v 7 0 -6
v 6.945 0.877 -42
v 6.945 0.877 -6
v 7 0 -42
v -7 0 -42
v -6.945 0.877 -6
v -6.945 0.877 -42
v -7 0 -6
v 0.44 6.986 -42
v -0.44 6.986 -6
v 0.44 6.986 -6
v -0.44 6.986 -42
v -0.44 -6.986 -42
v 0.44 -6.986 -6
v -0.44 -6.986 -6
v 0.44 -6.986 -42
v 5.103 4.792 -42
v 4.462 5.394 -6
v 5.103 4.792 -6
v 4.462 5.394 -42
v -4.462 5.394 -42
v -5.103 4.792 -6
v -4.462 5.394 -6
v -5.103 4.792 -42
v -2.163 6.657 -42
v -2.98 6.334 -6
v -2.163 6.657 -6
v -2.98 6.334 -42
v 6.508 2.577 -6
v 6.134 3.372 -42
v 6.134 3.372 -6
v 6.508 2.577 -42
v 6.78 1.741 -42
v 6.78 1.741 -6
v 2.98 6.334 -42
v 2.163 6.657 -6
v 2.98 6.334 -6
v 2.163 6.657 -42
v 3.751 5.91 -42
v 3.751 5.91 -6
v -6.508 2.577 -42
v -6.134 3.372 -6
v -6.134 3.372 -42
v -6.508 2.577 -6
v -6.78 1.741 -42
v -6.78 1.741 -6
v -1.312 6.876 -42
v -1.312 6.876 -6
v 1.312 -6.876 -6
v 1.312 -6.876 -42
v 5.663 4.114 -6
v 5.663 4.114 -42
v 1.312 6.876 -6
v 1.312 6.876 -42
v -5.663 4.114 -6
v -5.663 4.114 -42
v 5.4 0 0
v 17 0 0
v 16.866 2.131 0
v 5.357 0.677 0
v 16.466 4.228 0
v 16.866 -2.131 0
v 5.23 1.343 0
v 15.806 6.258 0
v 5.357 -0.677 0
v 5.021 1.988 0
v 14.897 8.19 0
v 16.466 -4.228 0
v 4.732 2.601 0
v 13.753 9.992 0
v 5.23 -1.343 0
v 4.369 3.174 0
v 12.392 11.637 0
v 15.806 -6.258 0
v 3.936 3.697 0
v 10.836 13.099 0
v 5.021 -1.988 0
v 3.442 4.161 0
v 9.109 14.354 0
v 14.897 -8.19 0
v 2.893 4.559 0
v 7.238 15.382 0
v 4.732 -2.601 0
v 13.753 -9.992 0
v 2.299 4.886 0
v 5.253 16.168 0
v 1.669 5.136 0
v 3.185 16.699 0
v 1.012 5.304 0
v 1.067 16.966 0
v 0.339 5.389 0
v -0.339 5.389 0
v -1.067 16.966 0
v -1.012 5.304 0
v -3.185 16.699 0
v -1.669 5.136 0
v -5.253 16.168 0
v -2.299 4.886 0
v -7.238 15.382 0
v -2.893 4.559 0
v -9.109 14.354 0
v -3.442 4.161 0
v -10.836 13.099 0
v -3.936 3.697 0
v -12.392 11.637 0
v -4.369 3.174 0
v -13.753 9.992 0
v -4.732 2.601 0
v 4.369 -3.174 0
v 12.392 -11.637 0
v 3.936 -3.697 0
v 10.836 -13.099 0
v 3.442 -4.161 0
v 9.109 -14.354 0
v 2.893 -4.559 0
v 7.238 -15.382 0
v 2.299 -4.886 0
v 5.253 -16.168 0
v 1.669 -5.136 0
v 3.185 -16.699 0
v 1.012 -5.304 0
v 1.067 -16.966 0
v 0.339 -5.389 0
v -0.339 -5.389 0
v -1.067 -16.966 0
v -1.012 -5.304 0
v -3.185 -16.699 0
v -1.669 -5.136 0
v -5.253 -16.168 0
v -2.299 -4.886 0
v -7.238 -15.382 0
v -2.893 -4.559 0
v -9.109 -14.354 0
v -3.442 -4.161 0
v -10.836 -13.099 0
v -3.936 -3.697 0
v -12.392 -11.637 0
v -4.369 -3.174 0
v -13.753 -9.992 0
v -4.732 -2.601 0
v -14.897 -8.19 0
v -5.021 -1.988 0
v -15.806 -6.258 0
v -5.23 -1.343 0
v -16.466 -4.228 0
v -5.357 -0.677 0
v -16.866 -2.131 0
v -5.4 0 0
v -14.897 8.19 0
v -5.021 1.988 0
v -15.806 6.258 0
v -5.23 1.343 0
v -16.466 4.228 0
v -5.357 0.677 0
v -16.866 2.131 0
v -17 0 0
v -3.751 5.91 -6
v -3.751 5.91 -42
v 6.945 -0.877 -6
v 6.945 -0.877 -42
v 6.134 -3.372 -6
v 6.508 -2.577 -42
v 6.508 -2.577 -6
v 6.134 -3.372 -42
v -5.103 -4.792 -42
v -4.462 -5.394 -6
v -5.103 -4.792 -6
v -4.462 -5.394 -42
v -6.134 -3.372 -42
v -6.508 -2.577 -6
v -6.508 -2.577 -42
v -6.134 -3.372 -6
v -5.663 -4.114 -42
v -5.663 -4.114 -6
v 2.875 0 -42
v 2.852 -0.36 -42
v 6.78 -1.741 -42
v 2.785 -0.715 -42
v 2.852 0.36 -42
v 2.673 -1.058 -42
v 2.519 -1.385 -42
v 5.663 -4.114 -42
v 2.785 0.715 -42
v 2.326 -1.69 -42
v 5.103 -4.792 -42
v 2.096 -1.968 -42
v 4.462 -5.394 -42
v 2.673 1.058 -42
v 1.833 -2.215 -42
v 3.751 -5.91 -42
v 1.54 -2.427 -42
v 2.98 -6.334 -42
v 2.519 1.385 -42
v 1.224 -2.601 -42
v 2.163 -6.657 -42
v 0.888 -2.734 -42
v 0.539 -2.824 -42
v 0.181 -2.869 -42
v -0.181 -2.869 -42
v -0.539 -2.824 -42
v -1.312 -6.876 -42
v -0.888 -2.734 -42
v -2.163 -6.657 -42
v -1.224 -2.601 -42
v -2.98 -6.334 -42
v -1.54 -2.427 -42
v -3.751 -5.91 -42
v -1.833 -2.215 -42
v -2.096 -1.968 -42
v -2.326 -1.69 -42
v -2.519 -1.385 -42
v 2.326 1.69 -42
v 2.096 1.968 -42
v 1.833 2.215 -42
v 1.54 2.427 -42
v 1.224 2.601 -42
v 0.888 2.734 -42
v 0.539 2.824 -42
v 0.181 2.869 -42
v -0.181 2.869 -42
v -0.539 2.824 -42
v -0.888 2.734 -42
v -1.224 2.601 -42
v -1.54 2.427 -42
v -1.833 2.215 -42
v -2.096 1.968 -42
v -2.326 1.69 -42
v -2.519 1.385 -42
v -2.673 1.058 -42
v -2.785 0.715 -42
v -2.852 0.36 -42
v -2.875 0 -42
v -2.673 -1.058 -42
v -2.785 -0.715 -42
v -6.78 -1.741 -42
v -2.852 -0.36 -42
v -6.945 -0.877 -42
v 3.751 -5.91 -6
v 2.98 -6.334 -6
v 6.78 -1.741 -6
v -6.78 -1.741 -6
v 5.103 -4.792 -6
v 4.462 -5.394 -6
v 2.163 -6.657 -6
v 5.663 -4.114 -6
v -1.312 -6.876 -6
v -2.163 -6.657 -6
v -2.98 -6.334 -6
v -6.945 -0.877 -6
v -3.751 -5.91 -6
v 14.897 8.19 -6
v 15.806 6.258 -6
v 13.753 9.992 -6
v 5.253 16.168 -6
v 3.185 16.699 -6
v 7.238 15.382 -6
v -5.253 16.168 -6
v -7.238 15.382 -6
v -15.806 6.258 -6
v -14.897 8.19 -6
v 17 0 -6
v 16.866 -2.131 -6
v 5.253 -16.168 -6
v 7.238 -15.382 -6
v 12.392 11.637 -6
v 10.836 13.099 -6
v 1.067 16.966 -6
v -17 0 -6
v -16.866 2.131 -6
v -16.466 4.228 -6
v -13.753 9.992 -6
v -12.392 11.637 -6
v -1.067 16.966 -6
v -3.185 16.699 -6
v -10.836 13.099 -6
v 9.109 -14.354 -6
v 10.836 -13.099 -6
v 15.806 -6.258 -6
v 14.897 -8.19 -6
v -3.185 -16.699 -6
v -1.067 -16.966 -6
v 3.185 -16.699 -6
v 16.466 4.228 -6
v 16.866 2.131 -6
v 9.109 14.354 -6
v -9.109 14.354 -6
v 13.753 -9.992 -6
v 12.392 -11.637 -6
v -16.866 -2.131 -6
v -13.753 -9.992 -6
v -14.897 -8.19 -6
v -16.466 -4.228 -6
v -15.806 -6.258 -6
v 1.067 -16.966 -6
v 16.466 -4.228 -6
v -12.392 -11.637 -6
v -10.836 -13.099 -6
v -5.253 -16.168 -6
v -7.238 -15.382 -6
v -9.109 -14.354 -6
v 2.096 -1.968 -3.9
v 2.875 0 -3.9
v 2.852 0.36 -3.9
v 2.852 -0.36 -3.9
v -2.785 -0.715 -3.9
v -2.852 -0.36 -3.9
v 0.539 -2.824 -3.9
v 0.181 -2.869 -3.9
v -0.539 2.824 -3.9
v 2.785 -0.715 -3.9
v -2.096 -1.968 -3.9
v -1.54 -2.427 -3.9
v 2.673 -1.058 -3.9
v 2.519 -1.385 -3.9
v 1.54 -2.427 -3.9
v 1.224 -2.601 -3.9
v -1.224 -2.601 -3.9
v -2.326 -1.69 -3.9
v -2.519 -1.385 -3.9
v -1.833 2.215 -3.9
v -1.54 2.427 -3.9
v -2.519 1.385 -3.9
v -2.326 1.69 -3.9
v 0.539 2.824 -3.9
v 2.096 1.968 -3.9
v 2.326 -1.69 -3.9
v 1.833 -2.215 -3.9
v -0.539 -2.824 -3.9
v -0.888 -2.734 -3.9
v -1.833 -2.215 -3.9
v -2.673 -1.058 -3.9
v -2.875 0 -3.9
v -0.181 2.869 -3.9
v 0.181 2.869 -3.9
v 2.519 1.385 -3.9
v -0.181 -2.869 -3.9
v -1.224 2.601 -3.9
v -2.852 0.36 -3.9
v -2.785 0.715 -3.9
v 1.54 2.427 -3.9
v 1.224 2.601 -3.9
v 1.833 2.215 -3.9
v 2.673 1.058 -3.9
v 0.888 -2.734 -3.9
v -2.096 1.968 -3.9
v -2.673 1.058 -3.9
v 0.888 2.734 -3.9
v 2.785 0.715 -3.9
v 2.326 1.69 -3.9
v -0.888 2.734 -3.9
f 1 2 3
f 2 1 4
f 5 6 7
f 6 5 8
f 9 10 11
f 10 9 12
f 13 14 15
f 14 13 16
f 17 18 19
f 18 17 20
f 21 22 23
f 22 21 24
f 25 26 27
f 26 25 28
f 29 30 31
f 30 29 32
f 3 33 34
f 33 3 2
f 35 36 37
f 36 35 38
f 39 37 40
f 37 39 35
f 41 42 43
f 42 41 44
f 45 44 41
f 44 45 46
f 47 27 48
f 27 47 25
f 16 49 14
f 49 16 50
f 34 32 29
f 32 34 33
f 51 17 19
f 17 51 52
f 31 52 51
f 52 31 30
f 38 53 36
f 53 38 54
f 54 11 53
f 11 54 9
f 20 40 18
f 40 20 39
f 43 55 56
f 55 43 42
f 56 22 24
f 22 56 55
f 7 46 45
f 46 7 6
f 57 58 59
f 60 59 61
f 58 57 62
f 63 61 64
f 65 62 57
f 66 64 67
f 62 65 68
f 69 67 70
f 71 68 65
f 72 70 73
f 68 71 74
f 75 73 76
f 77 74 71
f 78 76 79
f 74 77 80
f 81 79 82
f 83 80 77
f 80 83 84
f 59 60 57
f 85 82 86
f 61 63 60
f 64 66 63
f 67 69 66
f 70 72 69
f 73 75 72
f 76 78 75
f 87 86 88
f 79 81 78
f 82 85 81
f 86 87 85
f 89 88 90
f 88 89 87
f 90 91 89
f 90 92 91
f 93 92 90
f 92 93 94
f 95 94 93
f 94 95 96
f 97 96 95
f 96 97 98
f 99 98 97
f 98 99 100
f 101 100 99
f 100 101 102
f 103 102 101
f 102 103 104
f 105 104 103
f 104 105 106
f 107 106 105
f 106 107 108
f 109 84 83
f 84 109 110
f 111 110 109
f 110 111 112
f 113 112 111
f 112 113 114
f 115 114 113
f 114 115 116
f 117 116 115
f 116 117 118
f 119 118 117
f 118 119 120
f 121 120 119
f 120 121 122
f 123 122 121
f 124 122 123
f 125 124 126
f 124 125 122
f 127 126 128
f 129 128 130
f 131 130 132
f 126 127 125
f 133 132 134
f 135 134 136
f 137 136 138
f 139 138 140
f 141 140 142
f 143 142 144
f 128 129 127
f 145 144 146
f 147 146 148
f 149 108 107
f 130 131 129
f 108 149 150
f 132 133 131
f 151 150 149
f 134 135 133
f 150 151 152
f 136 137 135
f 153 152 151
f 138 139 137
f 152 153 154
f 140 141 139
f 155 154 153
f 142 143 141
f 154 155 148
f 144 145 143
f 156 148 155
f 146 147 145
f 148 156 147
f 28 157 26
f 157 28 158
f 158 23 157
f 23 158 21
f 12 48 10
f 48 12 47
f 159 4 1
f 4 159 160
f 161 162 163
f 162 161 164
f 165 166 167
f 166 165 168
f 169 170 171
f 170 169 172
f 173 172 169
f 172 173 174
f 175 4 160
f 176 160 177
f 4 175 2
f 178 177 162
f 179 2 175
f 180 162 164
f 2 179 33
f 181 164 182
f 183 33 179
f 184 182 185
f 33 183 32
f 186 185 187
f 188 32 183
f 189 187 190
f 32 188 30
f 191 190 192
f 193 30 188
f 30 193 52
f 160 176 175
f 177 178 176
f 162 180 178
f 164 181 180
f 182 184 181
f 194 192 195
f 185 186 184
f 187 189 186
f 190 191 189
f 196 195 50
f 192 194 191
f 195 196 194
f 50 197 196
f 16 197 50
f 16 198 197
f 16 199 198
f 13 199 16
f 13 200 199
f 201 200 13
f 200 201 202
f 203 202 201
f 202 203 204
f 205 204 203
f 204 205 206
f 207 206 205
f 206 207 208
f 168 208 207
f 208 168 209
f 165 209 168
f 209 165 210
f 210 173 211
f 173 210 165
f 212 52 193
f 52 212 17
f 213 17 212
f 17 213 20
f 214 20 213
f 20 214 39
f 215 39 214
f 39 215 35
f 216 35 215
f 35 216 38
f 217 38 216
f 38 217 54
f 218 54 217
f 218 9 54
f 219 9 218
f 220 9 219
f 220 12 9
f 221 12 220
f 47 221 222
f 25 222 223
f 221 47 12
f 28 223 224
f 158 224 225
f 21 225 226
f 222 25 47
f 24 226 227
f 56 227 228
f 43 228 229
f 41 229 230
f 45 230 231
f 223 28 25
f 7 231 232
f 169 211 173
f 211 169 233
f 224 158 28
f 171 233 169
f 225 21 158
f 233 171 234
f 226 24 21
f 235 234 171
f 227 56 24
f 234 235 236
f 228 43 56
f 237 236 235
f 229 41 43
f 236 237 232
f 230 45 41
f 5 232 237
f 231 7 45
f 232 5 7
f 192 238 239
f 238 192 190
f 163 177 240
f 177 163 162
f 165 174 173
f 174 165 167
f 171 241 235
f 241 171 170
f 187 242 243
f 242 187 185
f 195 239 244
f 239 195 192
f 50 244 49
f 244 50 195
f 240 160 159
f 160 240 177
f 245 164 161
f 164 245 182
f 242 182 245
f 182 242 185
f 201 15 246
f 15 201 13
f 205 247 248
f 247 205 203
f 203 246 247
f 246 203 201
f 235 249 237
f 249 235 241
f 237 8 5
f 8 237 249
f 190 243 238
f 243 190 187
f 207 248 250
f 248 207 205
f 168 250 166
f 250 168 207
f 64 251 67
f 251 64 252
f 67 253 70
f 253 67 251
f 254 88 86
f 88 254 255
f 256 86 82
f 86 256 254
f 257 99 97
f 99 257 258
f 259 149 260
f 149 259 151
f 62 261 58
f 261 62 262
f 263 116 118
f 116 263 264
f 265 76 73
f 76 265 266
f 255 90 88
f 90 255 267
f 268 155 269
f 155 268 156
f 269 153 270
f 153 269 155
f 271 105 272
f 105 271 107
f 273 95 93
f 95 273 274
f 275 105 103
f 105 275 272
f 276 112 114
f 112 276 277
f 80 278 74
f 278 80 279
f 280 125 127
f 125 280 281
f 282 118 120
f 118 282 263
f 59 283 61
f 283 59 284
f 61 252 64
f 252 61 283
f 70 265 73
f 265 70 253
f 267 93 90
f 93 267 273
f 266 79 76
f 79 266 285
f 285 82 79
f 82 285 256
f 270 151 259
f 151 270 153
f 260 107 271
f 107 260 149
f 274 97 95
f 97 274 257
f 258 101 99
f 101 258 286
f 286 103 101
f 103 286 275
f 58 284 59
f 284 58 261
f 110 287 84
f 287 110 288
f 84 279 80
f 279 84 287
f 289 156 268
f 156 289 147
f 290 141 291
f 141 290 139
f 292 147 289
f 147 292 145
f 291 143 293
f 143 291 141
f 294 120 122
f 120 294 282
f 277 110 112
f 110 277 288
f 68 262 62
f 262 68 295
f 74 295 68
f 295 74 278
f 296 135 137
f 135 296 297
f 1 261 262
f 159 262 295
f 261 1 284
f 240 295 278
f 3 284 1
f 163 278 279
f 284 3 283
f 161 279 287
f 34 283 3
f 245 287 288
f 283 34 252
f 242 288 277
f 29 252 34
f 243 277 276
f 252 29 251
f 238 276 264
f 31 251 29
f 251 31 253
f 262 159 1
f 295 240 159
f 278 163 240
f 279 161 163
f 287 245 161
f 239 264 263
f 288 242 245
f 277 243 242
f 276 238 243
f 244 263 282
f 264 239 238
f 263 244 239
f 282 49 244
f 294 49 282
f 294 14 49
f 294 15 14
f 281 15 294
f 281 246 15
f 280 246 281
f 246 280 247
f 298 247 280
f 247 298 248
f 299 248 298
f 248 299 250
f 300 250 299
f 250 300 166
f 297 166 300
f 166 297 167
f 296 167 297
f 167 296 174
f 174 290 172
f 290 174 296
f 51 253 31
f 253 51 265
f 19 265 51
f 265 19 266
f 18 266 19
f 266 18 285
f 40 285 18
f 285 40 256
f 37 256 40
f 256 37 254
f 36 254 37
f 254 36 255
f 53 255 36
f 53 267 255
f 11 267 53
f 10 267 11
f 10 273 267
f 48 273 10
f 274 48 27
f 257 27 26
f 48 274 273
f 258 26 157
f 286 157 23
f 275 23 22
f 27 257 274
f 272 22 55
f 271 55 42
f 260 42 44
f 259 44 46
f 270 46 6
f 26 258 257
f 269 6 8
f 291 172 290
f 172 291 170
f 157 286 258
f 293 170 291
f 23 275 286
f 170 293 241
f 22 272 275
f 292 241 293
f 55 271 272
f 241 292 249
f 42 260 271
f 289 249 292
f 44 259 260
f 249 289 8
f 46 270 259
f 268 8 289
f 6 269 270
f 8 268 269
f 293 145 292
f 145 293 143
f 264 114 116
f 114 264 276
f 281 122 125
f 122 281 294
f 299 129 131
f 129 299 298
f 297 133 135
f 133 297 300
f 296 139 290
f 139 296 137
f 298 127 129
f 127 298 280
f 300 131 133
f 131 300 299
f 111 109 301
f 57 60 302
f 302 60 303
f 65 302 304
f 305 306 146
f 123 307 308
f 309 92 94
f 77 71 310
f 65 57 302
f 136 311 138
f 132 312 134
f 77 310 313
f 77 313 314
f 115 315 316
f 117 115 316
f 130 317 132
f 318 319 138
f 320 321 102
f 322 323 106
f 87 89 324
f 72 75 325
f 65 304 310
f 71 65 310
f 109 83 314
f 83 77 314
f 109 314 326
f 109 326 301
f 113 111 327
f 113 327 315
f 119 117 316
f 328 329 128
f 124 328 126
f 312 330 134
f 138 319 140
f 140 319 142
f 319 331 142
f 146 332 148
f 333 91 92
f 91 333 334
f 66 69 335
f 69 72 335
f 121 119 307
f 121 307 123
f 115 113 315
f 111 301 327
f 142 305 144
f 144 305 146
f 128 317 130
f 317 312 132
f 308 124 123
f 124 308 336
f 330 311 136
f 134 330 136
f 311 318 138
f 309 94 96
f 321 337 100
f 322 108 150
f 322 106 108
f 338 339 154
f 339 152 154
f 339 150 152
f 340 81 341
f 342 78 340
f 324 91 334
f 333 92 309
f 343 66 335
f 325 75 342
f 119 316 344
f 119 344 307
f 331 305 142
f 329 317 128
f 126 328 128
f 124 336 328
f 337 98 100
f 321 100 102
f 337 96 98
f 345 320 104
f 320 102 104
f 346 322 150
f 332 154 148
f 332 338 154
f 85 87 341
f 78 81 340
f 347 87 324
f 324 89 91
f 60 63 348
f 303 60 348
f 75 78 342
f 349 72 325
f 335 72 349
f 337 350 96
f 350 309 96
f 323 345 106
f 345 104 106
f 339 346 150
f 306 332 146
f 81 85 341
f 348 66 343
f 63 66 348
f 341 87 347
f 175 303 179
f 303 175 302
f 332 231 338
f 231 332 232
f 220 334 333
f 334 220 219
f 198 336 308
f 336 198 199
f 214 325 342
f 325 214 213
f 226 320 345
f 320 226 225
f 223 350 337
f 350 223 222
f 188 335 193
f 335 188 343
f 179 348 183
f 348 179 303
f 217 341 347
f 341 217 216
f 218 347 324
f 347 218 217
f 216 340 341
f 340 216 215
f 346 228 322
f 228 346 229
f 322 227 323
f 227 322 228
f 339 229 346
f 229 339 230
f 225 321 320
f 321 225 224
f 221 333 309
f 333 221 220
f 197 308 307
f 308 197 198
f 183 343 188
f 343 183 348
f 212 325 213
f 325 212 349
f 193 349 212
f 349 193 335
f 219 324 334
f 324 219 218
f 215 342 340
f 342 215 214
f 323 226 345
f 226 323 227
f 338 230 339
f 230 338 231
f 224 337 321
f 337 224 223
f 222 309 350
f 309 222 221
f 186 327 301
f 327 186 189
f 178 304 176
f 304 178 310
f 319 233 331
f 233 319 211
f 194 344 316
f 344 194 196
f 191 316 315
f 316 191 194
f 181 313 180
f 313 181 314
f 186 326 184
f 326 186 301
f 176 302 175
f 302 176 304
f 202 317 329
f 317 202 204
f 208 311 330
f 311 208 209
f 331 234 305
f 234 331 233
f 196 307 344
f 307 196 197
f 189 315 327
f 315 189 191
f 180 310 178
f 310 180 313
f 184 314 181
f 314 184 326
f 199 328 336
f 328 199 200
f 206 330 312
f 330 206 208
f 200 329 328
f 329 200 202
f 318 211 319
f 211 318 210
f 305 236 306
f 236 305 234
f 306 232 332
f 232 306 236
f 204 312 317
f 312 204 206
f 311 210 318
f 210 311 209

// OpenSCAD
$fn = 50;


difference() {
	union() {
		translate(v = [0, 0, -42.0000000000]) {
			cylinder(h = 42, r = 7.0000000000);
		}
		translate(v = [0, 0, -6.0000000000]) {
			cylinder(h = 6, r = 17.0000000000);
		}
	}
	union() {
		translate(v = [0, 0, 0]) {
			rotate(a = [0, 0, 0]) {
				difference() {
					union() {
						#translate(v = [0, 0, -42.0000000000]) {
							cylinder(h = 42, r = 2.6000000000);
						}
						#translate(v = [0, 0, -3.9000000000]) {
							cylinder(h = 3.9000000000, r = 7.0000000000, r1 = 2.8750000000, r2 = 5.4000000000);
						}
						#translate(v = [0, 0, -42.0000000000]) {
							cylinder(h = 42, r = 2.8750000000);
						}
						#translate(v = [0, 0, -42.0000000000]) {
							cylinder(h = 42, r = 2.6000000000);
						}
					}
					union();
				}
			}
		}
	}
}
